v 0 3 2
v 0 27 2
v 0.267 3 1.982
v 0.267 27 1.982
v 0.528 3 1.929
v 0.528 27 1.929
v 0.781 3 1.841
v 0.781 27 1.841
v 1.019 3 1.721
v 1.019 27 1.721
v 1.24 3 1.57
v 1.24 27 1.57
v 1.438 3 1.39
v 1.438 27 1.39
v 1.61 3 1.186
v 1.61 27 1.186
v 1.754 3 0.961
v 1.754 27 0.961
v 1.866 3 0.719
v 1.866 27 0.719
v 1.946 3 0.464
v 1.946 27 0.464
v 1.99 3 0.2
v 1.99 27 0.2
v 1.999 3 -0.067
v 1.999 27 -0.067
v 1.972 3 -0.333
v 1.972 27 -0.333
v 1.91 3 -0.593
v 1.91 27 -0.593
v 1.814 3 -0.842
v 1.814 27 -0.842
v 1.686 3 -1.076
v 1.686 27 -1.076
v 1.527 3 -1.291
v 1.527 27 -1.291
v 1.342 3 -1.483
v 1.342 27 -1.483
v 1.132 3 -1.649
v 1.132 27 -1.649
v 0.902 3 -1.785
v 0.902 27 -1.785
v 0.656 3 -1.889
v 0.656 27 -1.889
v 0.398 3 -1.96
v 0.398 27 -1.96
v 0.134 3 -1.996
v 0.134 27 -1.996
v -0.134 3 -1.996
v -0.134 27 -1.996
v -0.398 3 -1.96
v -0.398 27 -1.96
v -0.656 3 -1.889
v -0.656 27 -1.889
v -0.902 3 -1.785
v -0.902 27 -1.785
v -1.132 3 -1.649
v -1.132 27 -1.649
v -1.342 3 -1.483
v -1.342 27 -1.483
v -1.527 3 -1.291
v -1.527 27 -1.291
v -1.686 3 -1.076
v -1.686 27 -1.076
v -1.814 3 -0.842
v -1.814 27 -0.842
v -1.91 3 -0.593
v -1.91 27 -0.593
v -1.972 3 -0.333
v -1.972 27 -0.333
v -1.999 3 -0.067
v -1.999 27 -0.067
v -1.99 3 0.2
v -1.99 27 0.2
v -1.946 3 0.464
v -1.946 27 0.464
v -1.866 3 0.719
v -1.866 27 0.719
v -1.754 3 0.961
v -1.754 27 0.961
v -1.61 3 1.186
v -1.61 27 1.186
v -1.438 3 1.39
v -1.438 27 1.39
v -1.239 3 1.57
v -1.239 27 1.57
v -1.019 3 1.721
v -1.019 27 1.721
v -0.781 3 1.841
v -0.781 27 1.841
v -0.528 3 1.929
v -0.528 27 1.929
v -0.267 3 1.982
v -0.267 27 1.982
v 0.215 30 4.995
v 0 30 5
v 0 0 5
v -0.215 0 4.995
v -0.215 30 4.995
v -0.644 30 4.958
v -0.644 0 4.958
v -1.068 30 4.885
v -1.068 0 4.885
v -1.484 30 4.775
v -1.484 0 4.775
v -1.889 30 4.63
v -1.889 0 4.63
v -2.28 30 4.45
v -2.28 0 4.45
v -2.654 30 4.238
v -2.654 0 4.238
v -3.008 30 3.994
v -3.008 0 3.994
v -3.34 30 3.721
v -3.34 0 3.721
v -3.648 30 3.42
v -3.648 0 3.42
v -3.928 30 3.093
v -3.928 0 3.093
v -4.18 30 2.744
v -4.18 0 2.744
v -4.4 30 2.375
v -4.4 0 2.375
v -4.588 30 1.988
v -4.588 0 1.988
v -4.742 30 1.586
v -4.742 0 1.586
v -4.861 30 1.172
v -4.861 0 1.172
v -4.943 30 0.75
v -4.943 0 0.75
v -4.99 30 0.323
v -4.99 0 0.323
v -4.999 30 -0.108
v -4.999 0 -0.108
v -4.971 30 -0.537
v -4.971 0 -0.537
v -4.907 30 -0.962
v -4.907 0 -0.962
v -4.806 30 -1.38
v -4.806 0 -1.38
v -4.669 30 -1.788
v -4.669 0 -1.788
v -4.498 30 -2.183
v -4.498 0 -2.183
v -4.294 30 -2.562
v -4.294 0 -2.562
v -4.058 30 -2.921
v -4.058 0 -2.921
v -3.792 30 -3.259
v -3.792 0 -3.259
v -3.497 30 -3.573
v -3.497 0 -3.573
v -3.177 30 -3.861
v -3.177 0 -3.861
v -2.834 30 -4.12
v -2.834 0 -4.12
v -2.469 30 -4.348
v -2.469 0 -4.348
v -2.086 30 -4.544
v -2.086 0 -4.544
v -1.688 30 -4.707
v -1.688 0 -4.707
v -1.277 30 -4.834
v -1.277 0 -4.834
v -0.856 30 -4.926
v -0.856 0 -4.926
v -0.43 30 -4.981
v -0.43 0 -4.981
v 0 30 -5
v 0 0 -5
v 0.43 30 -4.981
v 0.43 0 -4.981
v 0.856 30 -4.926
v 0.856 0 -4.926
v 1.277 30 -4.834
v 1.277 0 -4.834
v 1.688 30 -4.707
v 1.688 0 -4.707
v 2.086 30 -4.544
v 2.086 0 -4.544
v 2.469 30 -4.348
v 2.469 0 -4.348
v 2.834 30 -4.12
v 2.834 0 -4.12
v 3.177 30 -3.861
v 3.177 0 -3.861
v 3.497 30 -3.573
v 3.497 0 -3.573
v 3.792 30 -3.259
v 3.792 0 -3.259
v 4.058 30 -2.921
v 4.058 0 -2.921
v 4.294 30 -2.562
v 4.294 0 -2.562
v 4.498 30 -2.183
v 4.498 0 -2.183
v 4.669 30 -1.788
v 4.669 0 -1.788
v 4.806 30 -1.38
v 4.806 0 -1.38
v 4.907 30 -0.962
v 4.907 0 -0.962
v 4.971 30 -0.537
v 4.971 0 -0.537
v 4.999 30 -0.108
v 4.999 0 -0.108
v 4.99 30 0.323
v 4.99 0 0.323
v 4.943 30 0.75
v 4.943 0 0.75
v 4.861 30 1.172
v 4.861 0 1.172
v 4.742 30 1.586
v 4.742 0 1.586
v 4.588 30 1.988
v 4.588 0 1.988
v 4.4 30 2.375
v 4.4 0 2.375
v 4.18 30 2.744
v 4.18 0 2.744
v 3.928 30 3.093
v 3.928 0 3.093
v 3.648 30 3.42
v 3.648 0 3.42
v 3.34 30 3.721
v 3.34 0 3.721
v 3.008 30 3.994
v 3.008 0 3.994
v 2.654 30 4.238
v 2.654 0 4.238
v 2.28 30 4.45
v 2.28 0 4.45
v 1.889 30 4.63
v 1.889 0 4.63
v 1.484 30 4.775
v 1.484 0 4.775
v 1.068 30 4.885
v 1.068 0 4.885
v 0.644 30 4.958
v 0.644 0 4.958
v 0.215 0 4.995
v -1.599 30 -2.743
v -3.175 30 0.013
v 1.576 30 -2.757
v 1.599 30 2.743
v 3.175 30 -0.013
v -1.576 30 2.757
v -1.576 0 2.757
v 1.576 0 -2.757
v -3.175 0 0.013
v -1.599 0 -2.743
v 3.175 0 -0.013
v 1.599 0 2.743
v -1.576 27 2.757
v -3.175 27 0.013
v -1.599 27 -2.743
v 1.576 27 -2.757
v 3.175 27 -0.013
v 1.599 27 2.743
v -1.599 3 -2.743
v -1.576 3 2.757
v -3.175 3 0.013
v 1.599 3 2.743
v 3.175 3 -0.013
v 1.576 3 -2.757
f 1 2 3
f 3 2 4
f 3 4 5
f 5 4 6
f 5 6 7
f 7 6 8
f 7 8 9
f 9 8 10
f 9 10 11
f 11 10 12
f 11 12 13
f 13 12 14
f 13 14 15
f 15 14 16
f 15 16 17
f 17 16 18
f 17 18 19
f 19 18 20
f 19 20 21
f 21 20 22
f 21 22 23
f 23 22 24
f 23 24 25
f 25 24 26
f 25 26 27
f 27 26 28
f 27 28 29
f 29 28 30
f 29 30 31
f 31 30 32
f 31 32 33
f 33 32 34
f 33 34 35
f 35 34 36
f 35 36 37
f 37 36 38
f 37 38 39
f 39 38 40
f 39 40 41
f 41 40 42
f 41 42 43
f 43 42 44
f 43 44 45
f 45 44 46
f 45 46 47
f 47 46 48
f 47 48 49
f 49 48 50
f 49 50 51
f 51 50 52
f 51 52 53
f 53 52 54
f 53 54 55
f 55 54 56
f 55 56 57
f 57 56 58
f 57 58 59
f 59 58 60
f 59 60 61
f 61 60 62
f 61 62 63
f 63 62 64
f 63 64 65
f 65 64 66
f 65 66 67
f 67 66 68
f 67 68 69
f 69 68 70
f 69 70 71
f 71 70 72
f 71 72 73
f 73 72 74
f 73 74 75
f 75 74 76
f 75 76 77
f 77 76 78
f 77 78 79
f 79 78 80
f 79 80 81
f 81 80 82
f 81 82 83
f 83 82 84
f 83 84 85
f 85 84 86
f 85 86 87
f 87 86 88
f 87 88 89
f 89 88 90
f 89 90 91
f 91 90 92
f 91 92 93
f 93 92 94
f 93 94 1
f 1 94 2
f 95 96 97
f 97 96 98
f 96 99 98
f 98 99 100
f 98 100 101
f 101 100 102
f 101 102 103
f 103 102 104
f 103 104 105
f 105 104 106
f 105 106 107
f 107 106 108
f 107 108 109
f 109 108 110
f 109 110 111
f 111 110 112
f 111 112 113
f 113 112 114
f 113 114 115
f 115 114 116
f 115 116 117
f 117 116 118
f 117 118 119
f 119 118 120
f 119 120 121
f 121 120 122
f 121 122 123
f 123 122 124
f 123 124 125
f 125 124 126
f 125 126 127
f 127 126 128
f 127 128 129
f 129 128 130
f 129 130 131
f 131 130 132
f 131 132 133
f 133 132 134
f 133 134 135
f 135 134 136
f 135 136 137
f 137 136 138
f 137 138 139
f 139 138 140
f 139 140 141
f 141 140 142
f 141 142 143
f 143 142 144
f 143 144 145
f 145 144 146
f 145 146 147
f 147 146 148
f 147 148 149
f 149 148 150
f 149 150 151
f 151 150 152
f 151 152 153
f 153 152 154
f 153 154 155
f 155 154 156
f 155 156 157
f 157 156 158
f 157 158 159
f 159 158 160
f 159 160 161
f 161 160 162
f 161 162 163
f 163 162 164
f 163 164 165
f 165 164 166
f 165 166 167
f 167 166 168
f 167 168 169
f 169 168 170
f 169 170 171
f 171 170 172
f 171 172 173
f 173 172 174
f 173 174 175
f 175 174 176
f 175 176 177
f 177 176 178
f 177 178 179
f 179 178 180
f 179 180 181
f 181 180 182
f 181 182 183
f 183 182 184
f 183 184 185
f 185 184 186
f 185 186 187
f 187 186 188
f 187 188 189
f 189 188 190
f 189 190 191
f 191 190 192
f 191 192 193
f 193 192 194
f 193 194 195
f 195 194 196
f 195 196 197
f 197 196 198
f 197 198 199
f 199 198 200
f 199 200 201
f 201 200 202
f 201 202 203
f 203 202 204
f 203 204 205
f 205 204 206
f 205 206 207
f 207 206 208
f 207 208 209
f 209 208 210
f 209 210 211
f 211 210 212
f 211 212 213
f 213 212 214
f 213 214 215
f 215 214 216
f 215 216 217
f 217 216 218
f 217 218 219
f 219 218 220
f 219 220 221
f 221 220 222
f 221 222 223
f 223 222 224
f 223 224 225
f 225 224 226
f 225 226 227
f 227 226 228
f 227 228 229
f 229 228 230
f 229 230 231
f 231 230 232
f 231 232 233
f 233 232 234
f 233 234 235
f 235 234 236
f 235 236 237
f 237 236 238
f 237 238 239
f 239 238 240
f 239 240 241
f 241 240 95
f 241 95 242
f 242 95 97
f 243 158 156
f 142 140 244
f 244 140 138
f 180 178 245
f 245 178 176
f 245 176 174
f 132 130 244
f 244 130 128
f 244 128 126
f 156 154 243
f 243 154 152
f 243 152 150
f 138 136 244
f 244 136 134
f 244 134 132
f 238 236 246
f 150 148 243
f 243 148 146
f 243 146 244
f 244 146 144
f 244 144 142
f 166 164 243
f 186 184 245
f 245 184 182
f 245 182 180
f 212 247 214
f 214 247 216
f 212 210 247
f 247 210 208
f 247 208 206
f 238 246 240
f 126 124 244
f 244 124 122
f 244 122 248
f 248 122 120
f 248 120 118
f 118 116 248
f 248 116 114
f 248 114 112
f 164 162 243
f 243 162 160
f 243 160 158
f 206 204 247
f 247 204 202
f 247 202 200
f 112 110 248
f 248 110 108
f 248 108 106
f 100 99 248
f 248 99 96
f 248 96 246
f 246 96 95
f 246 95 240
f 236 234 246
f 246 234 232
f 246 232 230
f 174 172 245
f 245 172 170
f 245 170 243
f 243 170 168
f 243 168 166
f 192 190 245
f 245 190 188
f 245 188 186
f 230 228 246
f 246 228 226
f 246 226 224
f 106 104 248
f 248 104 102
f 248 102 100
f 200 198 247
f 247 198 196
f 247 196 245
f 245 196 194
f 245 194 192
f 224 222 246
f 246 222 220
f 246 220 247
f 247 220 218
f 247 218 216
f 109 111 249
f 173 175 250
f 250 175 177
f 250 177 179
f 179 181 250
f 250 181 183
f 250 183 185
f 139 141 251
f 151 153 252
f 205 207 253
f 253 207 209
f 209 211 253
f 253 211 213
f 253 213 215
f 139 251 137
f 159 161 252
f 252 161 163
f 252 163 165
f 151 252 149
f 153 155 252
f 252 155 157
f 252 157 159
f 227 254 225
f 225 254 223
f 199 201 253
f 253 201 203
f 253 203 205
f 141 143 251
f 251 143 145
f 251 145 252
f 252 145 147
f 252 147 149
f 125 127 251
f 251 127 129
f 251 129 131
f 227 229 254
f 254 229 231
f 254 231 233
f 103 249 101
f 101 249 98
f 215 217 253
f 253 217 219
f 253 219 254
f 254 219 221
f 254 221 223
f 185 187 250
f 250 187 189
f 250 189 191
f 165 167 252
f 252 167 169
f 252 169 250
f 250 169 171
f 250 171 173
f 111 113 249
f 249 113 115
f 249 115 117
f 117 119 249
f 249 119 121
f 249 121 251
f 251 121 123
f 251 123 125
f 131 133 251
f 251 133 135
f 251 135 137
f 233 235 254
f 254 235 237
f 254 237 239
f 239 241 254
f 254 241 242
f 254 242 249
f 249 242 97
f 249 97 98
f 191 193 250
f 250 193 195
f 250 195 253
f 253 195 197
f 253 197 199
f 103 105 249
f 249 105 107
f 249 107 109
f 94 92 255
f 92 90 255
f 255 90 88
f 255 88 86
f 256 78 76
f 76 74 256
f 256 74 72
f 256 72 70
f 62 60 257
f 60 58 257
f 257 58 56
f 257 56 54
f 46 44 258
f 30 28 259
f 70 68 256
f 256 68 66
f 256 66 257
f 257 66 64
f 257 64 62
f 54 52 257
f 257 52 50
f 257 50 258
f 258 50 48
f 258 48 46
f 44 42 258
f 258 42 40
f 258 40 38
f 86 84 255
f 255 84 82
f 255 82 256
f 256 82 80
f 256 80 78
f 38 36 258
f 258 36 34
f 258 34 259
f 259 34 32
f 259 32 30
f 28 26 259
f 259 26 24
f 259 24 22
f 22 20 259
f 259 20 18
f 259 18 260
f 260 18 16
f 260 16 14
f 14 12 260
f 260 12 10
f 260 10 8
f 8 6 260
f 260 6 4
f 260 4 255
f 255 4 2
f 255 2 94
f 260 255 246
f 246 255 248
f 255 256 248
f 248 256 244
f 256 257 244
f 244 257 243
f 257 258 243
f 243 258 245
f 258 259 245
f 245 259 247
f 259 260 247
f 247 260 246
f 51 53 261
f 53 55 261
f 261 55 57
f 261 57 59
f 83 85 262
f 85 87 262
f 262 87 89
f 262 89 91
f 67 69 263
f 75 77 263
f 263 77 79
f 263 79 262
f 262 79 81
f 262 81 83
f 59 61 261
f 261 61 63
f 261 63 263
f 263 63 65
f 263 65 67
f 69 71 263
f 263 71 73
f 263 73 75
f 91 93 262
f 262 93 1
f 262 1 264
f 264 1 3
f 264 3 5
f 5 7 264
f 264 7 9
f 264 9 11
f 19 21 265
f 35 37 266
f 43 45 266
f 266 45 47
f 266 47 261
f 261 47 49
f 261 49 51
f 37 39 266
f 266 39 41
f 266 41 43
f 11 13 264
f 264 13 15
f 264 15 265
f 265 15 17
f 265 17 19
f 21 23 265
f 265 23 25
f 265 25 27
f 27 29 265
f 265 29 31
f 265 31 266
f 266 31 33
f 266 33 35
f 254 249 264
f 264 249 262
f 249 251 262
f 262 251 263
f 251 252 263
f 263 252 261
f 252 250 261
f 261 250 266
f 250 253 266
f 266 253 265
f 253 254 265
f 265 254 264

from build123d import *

# Parameters (mm, degrees)
SKETCH1_R           = 5
BOSS_EXTRUDE1_DEPTH = 30
SKETCH2_R           = 2
CUT_EXTRUDE1_DEPTH  = 31
CUT_EXTRUDE2_DEPTH  = 3
LPATTERN1_COUNT     = 2
LPATTERN1_PITCH     = 27


with BuildPart() as part:
    # Sketch1 → Boss-Extrude1 (new body)
    with BuildSketch(Plane(origin=(0, 0, 0), x_dir=(1, 0, 0), z_dir=(0, 1, 0))):
        Circle(SKETCH1_R)
    extrude(amount=BOSS_EXTRUDE1_DEPTH)

    # Sketch2 → Cut-Extrude1 (cut, through all)
    with BuildSketch(Plane(origin=(0, 30, 0), x_dir=(1, 0, 0), z_dir=(0, 1, 0))):
        Circle(SKETCH2_R)
    extrude(amount=-CUT_EXTRUDE1_DEPTH, mode=Mode.SUBTRACT)

    # Sketch3 → Cut-Extrude2 (cut)
    with BuildSketch(Plane(origin=(0, 30, 0), x_dir=(1, 0, 0), z_dir=(0, 1, 0))):
        Polygon((1.599030575, -2.74343481), (3.175399526, 0.013083694), (1.576368951, 2.756518504), (-1.599030575, 2.74343481), (-3.175399526, -0.013083694), (-1.576368951, -2.756518504), align=None)
    cut_extrude2 = extrude(amount=-CUT_EXTRUDE2_DEPTH, mode=Mode.SUBTRACT)

    # LPattern1: Cut-Extrude2 ×2
    with Locations(*[(0, -i * LPATTERN1_PITCH, 0) for i in range(1, LPATTERN1_COUNT)]):
        add(cut_extrude2, mode=Mode.SUBTRACT)


solid = part.part
